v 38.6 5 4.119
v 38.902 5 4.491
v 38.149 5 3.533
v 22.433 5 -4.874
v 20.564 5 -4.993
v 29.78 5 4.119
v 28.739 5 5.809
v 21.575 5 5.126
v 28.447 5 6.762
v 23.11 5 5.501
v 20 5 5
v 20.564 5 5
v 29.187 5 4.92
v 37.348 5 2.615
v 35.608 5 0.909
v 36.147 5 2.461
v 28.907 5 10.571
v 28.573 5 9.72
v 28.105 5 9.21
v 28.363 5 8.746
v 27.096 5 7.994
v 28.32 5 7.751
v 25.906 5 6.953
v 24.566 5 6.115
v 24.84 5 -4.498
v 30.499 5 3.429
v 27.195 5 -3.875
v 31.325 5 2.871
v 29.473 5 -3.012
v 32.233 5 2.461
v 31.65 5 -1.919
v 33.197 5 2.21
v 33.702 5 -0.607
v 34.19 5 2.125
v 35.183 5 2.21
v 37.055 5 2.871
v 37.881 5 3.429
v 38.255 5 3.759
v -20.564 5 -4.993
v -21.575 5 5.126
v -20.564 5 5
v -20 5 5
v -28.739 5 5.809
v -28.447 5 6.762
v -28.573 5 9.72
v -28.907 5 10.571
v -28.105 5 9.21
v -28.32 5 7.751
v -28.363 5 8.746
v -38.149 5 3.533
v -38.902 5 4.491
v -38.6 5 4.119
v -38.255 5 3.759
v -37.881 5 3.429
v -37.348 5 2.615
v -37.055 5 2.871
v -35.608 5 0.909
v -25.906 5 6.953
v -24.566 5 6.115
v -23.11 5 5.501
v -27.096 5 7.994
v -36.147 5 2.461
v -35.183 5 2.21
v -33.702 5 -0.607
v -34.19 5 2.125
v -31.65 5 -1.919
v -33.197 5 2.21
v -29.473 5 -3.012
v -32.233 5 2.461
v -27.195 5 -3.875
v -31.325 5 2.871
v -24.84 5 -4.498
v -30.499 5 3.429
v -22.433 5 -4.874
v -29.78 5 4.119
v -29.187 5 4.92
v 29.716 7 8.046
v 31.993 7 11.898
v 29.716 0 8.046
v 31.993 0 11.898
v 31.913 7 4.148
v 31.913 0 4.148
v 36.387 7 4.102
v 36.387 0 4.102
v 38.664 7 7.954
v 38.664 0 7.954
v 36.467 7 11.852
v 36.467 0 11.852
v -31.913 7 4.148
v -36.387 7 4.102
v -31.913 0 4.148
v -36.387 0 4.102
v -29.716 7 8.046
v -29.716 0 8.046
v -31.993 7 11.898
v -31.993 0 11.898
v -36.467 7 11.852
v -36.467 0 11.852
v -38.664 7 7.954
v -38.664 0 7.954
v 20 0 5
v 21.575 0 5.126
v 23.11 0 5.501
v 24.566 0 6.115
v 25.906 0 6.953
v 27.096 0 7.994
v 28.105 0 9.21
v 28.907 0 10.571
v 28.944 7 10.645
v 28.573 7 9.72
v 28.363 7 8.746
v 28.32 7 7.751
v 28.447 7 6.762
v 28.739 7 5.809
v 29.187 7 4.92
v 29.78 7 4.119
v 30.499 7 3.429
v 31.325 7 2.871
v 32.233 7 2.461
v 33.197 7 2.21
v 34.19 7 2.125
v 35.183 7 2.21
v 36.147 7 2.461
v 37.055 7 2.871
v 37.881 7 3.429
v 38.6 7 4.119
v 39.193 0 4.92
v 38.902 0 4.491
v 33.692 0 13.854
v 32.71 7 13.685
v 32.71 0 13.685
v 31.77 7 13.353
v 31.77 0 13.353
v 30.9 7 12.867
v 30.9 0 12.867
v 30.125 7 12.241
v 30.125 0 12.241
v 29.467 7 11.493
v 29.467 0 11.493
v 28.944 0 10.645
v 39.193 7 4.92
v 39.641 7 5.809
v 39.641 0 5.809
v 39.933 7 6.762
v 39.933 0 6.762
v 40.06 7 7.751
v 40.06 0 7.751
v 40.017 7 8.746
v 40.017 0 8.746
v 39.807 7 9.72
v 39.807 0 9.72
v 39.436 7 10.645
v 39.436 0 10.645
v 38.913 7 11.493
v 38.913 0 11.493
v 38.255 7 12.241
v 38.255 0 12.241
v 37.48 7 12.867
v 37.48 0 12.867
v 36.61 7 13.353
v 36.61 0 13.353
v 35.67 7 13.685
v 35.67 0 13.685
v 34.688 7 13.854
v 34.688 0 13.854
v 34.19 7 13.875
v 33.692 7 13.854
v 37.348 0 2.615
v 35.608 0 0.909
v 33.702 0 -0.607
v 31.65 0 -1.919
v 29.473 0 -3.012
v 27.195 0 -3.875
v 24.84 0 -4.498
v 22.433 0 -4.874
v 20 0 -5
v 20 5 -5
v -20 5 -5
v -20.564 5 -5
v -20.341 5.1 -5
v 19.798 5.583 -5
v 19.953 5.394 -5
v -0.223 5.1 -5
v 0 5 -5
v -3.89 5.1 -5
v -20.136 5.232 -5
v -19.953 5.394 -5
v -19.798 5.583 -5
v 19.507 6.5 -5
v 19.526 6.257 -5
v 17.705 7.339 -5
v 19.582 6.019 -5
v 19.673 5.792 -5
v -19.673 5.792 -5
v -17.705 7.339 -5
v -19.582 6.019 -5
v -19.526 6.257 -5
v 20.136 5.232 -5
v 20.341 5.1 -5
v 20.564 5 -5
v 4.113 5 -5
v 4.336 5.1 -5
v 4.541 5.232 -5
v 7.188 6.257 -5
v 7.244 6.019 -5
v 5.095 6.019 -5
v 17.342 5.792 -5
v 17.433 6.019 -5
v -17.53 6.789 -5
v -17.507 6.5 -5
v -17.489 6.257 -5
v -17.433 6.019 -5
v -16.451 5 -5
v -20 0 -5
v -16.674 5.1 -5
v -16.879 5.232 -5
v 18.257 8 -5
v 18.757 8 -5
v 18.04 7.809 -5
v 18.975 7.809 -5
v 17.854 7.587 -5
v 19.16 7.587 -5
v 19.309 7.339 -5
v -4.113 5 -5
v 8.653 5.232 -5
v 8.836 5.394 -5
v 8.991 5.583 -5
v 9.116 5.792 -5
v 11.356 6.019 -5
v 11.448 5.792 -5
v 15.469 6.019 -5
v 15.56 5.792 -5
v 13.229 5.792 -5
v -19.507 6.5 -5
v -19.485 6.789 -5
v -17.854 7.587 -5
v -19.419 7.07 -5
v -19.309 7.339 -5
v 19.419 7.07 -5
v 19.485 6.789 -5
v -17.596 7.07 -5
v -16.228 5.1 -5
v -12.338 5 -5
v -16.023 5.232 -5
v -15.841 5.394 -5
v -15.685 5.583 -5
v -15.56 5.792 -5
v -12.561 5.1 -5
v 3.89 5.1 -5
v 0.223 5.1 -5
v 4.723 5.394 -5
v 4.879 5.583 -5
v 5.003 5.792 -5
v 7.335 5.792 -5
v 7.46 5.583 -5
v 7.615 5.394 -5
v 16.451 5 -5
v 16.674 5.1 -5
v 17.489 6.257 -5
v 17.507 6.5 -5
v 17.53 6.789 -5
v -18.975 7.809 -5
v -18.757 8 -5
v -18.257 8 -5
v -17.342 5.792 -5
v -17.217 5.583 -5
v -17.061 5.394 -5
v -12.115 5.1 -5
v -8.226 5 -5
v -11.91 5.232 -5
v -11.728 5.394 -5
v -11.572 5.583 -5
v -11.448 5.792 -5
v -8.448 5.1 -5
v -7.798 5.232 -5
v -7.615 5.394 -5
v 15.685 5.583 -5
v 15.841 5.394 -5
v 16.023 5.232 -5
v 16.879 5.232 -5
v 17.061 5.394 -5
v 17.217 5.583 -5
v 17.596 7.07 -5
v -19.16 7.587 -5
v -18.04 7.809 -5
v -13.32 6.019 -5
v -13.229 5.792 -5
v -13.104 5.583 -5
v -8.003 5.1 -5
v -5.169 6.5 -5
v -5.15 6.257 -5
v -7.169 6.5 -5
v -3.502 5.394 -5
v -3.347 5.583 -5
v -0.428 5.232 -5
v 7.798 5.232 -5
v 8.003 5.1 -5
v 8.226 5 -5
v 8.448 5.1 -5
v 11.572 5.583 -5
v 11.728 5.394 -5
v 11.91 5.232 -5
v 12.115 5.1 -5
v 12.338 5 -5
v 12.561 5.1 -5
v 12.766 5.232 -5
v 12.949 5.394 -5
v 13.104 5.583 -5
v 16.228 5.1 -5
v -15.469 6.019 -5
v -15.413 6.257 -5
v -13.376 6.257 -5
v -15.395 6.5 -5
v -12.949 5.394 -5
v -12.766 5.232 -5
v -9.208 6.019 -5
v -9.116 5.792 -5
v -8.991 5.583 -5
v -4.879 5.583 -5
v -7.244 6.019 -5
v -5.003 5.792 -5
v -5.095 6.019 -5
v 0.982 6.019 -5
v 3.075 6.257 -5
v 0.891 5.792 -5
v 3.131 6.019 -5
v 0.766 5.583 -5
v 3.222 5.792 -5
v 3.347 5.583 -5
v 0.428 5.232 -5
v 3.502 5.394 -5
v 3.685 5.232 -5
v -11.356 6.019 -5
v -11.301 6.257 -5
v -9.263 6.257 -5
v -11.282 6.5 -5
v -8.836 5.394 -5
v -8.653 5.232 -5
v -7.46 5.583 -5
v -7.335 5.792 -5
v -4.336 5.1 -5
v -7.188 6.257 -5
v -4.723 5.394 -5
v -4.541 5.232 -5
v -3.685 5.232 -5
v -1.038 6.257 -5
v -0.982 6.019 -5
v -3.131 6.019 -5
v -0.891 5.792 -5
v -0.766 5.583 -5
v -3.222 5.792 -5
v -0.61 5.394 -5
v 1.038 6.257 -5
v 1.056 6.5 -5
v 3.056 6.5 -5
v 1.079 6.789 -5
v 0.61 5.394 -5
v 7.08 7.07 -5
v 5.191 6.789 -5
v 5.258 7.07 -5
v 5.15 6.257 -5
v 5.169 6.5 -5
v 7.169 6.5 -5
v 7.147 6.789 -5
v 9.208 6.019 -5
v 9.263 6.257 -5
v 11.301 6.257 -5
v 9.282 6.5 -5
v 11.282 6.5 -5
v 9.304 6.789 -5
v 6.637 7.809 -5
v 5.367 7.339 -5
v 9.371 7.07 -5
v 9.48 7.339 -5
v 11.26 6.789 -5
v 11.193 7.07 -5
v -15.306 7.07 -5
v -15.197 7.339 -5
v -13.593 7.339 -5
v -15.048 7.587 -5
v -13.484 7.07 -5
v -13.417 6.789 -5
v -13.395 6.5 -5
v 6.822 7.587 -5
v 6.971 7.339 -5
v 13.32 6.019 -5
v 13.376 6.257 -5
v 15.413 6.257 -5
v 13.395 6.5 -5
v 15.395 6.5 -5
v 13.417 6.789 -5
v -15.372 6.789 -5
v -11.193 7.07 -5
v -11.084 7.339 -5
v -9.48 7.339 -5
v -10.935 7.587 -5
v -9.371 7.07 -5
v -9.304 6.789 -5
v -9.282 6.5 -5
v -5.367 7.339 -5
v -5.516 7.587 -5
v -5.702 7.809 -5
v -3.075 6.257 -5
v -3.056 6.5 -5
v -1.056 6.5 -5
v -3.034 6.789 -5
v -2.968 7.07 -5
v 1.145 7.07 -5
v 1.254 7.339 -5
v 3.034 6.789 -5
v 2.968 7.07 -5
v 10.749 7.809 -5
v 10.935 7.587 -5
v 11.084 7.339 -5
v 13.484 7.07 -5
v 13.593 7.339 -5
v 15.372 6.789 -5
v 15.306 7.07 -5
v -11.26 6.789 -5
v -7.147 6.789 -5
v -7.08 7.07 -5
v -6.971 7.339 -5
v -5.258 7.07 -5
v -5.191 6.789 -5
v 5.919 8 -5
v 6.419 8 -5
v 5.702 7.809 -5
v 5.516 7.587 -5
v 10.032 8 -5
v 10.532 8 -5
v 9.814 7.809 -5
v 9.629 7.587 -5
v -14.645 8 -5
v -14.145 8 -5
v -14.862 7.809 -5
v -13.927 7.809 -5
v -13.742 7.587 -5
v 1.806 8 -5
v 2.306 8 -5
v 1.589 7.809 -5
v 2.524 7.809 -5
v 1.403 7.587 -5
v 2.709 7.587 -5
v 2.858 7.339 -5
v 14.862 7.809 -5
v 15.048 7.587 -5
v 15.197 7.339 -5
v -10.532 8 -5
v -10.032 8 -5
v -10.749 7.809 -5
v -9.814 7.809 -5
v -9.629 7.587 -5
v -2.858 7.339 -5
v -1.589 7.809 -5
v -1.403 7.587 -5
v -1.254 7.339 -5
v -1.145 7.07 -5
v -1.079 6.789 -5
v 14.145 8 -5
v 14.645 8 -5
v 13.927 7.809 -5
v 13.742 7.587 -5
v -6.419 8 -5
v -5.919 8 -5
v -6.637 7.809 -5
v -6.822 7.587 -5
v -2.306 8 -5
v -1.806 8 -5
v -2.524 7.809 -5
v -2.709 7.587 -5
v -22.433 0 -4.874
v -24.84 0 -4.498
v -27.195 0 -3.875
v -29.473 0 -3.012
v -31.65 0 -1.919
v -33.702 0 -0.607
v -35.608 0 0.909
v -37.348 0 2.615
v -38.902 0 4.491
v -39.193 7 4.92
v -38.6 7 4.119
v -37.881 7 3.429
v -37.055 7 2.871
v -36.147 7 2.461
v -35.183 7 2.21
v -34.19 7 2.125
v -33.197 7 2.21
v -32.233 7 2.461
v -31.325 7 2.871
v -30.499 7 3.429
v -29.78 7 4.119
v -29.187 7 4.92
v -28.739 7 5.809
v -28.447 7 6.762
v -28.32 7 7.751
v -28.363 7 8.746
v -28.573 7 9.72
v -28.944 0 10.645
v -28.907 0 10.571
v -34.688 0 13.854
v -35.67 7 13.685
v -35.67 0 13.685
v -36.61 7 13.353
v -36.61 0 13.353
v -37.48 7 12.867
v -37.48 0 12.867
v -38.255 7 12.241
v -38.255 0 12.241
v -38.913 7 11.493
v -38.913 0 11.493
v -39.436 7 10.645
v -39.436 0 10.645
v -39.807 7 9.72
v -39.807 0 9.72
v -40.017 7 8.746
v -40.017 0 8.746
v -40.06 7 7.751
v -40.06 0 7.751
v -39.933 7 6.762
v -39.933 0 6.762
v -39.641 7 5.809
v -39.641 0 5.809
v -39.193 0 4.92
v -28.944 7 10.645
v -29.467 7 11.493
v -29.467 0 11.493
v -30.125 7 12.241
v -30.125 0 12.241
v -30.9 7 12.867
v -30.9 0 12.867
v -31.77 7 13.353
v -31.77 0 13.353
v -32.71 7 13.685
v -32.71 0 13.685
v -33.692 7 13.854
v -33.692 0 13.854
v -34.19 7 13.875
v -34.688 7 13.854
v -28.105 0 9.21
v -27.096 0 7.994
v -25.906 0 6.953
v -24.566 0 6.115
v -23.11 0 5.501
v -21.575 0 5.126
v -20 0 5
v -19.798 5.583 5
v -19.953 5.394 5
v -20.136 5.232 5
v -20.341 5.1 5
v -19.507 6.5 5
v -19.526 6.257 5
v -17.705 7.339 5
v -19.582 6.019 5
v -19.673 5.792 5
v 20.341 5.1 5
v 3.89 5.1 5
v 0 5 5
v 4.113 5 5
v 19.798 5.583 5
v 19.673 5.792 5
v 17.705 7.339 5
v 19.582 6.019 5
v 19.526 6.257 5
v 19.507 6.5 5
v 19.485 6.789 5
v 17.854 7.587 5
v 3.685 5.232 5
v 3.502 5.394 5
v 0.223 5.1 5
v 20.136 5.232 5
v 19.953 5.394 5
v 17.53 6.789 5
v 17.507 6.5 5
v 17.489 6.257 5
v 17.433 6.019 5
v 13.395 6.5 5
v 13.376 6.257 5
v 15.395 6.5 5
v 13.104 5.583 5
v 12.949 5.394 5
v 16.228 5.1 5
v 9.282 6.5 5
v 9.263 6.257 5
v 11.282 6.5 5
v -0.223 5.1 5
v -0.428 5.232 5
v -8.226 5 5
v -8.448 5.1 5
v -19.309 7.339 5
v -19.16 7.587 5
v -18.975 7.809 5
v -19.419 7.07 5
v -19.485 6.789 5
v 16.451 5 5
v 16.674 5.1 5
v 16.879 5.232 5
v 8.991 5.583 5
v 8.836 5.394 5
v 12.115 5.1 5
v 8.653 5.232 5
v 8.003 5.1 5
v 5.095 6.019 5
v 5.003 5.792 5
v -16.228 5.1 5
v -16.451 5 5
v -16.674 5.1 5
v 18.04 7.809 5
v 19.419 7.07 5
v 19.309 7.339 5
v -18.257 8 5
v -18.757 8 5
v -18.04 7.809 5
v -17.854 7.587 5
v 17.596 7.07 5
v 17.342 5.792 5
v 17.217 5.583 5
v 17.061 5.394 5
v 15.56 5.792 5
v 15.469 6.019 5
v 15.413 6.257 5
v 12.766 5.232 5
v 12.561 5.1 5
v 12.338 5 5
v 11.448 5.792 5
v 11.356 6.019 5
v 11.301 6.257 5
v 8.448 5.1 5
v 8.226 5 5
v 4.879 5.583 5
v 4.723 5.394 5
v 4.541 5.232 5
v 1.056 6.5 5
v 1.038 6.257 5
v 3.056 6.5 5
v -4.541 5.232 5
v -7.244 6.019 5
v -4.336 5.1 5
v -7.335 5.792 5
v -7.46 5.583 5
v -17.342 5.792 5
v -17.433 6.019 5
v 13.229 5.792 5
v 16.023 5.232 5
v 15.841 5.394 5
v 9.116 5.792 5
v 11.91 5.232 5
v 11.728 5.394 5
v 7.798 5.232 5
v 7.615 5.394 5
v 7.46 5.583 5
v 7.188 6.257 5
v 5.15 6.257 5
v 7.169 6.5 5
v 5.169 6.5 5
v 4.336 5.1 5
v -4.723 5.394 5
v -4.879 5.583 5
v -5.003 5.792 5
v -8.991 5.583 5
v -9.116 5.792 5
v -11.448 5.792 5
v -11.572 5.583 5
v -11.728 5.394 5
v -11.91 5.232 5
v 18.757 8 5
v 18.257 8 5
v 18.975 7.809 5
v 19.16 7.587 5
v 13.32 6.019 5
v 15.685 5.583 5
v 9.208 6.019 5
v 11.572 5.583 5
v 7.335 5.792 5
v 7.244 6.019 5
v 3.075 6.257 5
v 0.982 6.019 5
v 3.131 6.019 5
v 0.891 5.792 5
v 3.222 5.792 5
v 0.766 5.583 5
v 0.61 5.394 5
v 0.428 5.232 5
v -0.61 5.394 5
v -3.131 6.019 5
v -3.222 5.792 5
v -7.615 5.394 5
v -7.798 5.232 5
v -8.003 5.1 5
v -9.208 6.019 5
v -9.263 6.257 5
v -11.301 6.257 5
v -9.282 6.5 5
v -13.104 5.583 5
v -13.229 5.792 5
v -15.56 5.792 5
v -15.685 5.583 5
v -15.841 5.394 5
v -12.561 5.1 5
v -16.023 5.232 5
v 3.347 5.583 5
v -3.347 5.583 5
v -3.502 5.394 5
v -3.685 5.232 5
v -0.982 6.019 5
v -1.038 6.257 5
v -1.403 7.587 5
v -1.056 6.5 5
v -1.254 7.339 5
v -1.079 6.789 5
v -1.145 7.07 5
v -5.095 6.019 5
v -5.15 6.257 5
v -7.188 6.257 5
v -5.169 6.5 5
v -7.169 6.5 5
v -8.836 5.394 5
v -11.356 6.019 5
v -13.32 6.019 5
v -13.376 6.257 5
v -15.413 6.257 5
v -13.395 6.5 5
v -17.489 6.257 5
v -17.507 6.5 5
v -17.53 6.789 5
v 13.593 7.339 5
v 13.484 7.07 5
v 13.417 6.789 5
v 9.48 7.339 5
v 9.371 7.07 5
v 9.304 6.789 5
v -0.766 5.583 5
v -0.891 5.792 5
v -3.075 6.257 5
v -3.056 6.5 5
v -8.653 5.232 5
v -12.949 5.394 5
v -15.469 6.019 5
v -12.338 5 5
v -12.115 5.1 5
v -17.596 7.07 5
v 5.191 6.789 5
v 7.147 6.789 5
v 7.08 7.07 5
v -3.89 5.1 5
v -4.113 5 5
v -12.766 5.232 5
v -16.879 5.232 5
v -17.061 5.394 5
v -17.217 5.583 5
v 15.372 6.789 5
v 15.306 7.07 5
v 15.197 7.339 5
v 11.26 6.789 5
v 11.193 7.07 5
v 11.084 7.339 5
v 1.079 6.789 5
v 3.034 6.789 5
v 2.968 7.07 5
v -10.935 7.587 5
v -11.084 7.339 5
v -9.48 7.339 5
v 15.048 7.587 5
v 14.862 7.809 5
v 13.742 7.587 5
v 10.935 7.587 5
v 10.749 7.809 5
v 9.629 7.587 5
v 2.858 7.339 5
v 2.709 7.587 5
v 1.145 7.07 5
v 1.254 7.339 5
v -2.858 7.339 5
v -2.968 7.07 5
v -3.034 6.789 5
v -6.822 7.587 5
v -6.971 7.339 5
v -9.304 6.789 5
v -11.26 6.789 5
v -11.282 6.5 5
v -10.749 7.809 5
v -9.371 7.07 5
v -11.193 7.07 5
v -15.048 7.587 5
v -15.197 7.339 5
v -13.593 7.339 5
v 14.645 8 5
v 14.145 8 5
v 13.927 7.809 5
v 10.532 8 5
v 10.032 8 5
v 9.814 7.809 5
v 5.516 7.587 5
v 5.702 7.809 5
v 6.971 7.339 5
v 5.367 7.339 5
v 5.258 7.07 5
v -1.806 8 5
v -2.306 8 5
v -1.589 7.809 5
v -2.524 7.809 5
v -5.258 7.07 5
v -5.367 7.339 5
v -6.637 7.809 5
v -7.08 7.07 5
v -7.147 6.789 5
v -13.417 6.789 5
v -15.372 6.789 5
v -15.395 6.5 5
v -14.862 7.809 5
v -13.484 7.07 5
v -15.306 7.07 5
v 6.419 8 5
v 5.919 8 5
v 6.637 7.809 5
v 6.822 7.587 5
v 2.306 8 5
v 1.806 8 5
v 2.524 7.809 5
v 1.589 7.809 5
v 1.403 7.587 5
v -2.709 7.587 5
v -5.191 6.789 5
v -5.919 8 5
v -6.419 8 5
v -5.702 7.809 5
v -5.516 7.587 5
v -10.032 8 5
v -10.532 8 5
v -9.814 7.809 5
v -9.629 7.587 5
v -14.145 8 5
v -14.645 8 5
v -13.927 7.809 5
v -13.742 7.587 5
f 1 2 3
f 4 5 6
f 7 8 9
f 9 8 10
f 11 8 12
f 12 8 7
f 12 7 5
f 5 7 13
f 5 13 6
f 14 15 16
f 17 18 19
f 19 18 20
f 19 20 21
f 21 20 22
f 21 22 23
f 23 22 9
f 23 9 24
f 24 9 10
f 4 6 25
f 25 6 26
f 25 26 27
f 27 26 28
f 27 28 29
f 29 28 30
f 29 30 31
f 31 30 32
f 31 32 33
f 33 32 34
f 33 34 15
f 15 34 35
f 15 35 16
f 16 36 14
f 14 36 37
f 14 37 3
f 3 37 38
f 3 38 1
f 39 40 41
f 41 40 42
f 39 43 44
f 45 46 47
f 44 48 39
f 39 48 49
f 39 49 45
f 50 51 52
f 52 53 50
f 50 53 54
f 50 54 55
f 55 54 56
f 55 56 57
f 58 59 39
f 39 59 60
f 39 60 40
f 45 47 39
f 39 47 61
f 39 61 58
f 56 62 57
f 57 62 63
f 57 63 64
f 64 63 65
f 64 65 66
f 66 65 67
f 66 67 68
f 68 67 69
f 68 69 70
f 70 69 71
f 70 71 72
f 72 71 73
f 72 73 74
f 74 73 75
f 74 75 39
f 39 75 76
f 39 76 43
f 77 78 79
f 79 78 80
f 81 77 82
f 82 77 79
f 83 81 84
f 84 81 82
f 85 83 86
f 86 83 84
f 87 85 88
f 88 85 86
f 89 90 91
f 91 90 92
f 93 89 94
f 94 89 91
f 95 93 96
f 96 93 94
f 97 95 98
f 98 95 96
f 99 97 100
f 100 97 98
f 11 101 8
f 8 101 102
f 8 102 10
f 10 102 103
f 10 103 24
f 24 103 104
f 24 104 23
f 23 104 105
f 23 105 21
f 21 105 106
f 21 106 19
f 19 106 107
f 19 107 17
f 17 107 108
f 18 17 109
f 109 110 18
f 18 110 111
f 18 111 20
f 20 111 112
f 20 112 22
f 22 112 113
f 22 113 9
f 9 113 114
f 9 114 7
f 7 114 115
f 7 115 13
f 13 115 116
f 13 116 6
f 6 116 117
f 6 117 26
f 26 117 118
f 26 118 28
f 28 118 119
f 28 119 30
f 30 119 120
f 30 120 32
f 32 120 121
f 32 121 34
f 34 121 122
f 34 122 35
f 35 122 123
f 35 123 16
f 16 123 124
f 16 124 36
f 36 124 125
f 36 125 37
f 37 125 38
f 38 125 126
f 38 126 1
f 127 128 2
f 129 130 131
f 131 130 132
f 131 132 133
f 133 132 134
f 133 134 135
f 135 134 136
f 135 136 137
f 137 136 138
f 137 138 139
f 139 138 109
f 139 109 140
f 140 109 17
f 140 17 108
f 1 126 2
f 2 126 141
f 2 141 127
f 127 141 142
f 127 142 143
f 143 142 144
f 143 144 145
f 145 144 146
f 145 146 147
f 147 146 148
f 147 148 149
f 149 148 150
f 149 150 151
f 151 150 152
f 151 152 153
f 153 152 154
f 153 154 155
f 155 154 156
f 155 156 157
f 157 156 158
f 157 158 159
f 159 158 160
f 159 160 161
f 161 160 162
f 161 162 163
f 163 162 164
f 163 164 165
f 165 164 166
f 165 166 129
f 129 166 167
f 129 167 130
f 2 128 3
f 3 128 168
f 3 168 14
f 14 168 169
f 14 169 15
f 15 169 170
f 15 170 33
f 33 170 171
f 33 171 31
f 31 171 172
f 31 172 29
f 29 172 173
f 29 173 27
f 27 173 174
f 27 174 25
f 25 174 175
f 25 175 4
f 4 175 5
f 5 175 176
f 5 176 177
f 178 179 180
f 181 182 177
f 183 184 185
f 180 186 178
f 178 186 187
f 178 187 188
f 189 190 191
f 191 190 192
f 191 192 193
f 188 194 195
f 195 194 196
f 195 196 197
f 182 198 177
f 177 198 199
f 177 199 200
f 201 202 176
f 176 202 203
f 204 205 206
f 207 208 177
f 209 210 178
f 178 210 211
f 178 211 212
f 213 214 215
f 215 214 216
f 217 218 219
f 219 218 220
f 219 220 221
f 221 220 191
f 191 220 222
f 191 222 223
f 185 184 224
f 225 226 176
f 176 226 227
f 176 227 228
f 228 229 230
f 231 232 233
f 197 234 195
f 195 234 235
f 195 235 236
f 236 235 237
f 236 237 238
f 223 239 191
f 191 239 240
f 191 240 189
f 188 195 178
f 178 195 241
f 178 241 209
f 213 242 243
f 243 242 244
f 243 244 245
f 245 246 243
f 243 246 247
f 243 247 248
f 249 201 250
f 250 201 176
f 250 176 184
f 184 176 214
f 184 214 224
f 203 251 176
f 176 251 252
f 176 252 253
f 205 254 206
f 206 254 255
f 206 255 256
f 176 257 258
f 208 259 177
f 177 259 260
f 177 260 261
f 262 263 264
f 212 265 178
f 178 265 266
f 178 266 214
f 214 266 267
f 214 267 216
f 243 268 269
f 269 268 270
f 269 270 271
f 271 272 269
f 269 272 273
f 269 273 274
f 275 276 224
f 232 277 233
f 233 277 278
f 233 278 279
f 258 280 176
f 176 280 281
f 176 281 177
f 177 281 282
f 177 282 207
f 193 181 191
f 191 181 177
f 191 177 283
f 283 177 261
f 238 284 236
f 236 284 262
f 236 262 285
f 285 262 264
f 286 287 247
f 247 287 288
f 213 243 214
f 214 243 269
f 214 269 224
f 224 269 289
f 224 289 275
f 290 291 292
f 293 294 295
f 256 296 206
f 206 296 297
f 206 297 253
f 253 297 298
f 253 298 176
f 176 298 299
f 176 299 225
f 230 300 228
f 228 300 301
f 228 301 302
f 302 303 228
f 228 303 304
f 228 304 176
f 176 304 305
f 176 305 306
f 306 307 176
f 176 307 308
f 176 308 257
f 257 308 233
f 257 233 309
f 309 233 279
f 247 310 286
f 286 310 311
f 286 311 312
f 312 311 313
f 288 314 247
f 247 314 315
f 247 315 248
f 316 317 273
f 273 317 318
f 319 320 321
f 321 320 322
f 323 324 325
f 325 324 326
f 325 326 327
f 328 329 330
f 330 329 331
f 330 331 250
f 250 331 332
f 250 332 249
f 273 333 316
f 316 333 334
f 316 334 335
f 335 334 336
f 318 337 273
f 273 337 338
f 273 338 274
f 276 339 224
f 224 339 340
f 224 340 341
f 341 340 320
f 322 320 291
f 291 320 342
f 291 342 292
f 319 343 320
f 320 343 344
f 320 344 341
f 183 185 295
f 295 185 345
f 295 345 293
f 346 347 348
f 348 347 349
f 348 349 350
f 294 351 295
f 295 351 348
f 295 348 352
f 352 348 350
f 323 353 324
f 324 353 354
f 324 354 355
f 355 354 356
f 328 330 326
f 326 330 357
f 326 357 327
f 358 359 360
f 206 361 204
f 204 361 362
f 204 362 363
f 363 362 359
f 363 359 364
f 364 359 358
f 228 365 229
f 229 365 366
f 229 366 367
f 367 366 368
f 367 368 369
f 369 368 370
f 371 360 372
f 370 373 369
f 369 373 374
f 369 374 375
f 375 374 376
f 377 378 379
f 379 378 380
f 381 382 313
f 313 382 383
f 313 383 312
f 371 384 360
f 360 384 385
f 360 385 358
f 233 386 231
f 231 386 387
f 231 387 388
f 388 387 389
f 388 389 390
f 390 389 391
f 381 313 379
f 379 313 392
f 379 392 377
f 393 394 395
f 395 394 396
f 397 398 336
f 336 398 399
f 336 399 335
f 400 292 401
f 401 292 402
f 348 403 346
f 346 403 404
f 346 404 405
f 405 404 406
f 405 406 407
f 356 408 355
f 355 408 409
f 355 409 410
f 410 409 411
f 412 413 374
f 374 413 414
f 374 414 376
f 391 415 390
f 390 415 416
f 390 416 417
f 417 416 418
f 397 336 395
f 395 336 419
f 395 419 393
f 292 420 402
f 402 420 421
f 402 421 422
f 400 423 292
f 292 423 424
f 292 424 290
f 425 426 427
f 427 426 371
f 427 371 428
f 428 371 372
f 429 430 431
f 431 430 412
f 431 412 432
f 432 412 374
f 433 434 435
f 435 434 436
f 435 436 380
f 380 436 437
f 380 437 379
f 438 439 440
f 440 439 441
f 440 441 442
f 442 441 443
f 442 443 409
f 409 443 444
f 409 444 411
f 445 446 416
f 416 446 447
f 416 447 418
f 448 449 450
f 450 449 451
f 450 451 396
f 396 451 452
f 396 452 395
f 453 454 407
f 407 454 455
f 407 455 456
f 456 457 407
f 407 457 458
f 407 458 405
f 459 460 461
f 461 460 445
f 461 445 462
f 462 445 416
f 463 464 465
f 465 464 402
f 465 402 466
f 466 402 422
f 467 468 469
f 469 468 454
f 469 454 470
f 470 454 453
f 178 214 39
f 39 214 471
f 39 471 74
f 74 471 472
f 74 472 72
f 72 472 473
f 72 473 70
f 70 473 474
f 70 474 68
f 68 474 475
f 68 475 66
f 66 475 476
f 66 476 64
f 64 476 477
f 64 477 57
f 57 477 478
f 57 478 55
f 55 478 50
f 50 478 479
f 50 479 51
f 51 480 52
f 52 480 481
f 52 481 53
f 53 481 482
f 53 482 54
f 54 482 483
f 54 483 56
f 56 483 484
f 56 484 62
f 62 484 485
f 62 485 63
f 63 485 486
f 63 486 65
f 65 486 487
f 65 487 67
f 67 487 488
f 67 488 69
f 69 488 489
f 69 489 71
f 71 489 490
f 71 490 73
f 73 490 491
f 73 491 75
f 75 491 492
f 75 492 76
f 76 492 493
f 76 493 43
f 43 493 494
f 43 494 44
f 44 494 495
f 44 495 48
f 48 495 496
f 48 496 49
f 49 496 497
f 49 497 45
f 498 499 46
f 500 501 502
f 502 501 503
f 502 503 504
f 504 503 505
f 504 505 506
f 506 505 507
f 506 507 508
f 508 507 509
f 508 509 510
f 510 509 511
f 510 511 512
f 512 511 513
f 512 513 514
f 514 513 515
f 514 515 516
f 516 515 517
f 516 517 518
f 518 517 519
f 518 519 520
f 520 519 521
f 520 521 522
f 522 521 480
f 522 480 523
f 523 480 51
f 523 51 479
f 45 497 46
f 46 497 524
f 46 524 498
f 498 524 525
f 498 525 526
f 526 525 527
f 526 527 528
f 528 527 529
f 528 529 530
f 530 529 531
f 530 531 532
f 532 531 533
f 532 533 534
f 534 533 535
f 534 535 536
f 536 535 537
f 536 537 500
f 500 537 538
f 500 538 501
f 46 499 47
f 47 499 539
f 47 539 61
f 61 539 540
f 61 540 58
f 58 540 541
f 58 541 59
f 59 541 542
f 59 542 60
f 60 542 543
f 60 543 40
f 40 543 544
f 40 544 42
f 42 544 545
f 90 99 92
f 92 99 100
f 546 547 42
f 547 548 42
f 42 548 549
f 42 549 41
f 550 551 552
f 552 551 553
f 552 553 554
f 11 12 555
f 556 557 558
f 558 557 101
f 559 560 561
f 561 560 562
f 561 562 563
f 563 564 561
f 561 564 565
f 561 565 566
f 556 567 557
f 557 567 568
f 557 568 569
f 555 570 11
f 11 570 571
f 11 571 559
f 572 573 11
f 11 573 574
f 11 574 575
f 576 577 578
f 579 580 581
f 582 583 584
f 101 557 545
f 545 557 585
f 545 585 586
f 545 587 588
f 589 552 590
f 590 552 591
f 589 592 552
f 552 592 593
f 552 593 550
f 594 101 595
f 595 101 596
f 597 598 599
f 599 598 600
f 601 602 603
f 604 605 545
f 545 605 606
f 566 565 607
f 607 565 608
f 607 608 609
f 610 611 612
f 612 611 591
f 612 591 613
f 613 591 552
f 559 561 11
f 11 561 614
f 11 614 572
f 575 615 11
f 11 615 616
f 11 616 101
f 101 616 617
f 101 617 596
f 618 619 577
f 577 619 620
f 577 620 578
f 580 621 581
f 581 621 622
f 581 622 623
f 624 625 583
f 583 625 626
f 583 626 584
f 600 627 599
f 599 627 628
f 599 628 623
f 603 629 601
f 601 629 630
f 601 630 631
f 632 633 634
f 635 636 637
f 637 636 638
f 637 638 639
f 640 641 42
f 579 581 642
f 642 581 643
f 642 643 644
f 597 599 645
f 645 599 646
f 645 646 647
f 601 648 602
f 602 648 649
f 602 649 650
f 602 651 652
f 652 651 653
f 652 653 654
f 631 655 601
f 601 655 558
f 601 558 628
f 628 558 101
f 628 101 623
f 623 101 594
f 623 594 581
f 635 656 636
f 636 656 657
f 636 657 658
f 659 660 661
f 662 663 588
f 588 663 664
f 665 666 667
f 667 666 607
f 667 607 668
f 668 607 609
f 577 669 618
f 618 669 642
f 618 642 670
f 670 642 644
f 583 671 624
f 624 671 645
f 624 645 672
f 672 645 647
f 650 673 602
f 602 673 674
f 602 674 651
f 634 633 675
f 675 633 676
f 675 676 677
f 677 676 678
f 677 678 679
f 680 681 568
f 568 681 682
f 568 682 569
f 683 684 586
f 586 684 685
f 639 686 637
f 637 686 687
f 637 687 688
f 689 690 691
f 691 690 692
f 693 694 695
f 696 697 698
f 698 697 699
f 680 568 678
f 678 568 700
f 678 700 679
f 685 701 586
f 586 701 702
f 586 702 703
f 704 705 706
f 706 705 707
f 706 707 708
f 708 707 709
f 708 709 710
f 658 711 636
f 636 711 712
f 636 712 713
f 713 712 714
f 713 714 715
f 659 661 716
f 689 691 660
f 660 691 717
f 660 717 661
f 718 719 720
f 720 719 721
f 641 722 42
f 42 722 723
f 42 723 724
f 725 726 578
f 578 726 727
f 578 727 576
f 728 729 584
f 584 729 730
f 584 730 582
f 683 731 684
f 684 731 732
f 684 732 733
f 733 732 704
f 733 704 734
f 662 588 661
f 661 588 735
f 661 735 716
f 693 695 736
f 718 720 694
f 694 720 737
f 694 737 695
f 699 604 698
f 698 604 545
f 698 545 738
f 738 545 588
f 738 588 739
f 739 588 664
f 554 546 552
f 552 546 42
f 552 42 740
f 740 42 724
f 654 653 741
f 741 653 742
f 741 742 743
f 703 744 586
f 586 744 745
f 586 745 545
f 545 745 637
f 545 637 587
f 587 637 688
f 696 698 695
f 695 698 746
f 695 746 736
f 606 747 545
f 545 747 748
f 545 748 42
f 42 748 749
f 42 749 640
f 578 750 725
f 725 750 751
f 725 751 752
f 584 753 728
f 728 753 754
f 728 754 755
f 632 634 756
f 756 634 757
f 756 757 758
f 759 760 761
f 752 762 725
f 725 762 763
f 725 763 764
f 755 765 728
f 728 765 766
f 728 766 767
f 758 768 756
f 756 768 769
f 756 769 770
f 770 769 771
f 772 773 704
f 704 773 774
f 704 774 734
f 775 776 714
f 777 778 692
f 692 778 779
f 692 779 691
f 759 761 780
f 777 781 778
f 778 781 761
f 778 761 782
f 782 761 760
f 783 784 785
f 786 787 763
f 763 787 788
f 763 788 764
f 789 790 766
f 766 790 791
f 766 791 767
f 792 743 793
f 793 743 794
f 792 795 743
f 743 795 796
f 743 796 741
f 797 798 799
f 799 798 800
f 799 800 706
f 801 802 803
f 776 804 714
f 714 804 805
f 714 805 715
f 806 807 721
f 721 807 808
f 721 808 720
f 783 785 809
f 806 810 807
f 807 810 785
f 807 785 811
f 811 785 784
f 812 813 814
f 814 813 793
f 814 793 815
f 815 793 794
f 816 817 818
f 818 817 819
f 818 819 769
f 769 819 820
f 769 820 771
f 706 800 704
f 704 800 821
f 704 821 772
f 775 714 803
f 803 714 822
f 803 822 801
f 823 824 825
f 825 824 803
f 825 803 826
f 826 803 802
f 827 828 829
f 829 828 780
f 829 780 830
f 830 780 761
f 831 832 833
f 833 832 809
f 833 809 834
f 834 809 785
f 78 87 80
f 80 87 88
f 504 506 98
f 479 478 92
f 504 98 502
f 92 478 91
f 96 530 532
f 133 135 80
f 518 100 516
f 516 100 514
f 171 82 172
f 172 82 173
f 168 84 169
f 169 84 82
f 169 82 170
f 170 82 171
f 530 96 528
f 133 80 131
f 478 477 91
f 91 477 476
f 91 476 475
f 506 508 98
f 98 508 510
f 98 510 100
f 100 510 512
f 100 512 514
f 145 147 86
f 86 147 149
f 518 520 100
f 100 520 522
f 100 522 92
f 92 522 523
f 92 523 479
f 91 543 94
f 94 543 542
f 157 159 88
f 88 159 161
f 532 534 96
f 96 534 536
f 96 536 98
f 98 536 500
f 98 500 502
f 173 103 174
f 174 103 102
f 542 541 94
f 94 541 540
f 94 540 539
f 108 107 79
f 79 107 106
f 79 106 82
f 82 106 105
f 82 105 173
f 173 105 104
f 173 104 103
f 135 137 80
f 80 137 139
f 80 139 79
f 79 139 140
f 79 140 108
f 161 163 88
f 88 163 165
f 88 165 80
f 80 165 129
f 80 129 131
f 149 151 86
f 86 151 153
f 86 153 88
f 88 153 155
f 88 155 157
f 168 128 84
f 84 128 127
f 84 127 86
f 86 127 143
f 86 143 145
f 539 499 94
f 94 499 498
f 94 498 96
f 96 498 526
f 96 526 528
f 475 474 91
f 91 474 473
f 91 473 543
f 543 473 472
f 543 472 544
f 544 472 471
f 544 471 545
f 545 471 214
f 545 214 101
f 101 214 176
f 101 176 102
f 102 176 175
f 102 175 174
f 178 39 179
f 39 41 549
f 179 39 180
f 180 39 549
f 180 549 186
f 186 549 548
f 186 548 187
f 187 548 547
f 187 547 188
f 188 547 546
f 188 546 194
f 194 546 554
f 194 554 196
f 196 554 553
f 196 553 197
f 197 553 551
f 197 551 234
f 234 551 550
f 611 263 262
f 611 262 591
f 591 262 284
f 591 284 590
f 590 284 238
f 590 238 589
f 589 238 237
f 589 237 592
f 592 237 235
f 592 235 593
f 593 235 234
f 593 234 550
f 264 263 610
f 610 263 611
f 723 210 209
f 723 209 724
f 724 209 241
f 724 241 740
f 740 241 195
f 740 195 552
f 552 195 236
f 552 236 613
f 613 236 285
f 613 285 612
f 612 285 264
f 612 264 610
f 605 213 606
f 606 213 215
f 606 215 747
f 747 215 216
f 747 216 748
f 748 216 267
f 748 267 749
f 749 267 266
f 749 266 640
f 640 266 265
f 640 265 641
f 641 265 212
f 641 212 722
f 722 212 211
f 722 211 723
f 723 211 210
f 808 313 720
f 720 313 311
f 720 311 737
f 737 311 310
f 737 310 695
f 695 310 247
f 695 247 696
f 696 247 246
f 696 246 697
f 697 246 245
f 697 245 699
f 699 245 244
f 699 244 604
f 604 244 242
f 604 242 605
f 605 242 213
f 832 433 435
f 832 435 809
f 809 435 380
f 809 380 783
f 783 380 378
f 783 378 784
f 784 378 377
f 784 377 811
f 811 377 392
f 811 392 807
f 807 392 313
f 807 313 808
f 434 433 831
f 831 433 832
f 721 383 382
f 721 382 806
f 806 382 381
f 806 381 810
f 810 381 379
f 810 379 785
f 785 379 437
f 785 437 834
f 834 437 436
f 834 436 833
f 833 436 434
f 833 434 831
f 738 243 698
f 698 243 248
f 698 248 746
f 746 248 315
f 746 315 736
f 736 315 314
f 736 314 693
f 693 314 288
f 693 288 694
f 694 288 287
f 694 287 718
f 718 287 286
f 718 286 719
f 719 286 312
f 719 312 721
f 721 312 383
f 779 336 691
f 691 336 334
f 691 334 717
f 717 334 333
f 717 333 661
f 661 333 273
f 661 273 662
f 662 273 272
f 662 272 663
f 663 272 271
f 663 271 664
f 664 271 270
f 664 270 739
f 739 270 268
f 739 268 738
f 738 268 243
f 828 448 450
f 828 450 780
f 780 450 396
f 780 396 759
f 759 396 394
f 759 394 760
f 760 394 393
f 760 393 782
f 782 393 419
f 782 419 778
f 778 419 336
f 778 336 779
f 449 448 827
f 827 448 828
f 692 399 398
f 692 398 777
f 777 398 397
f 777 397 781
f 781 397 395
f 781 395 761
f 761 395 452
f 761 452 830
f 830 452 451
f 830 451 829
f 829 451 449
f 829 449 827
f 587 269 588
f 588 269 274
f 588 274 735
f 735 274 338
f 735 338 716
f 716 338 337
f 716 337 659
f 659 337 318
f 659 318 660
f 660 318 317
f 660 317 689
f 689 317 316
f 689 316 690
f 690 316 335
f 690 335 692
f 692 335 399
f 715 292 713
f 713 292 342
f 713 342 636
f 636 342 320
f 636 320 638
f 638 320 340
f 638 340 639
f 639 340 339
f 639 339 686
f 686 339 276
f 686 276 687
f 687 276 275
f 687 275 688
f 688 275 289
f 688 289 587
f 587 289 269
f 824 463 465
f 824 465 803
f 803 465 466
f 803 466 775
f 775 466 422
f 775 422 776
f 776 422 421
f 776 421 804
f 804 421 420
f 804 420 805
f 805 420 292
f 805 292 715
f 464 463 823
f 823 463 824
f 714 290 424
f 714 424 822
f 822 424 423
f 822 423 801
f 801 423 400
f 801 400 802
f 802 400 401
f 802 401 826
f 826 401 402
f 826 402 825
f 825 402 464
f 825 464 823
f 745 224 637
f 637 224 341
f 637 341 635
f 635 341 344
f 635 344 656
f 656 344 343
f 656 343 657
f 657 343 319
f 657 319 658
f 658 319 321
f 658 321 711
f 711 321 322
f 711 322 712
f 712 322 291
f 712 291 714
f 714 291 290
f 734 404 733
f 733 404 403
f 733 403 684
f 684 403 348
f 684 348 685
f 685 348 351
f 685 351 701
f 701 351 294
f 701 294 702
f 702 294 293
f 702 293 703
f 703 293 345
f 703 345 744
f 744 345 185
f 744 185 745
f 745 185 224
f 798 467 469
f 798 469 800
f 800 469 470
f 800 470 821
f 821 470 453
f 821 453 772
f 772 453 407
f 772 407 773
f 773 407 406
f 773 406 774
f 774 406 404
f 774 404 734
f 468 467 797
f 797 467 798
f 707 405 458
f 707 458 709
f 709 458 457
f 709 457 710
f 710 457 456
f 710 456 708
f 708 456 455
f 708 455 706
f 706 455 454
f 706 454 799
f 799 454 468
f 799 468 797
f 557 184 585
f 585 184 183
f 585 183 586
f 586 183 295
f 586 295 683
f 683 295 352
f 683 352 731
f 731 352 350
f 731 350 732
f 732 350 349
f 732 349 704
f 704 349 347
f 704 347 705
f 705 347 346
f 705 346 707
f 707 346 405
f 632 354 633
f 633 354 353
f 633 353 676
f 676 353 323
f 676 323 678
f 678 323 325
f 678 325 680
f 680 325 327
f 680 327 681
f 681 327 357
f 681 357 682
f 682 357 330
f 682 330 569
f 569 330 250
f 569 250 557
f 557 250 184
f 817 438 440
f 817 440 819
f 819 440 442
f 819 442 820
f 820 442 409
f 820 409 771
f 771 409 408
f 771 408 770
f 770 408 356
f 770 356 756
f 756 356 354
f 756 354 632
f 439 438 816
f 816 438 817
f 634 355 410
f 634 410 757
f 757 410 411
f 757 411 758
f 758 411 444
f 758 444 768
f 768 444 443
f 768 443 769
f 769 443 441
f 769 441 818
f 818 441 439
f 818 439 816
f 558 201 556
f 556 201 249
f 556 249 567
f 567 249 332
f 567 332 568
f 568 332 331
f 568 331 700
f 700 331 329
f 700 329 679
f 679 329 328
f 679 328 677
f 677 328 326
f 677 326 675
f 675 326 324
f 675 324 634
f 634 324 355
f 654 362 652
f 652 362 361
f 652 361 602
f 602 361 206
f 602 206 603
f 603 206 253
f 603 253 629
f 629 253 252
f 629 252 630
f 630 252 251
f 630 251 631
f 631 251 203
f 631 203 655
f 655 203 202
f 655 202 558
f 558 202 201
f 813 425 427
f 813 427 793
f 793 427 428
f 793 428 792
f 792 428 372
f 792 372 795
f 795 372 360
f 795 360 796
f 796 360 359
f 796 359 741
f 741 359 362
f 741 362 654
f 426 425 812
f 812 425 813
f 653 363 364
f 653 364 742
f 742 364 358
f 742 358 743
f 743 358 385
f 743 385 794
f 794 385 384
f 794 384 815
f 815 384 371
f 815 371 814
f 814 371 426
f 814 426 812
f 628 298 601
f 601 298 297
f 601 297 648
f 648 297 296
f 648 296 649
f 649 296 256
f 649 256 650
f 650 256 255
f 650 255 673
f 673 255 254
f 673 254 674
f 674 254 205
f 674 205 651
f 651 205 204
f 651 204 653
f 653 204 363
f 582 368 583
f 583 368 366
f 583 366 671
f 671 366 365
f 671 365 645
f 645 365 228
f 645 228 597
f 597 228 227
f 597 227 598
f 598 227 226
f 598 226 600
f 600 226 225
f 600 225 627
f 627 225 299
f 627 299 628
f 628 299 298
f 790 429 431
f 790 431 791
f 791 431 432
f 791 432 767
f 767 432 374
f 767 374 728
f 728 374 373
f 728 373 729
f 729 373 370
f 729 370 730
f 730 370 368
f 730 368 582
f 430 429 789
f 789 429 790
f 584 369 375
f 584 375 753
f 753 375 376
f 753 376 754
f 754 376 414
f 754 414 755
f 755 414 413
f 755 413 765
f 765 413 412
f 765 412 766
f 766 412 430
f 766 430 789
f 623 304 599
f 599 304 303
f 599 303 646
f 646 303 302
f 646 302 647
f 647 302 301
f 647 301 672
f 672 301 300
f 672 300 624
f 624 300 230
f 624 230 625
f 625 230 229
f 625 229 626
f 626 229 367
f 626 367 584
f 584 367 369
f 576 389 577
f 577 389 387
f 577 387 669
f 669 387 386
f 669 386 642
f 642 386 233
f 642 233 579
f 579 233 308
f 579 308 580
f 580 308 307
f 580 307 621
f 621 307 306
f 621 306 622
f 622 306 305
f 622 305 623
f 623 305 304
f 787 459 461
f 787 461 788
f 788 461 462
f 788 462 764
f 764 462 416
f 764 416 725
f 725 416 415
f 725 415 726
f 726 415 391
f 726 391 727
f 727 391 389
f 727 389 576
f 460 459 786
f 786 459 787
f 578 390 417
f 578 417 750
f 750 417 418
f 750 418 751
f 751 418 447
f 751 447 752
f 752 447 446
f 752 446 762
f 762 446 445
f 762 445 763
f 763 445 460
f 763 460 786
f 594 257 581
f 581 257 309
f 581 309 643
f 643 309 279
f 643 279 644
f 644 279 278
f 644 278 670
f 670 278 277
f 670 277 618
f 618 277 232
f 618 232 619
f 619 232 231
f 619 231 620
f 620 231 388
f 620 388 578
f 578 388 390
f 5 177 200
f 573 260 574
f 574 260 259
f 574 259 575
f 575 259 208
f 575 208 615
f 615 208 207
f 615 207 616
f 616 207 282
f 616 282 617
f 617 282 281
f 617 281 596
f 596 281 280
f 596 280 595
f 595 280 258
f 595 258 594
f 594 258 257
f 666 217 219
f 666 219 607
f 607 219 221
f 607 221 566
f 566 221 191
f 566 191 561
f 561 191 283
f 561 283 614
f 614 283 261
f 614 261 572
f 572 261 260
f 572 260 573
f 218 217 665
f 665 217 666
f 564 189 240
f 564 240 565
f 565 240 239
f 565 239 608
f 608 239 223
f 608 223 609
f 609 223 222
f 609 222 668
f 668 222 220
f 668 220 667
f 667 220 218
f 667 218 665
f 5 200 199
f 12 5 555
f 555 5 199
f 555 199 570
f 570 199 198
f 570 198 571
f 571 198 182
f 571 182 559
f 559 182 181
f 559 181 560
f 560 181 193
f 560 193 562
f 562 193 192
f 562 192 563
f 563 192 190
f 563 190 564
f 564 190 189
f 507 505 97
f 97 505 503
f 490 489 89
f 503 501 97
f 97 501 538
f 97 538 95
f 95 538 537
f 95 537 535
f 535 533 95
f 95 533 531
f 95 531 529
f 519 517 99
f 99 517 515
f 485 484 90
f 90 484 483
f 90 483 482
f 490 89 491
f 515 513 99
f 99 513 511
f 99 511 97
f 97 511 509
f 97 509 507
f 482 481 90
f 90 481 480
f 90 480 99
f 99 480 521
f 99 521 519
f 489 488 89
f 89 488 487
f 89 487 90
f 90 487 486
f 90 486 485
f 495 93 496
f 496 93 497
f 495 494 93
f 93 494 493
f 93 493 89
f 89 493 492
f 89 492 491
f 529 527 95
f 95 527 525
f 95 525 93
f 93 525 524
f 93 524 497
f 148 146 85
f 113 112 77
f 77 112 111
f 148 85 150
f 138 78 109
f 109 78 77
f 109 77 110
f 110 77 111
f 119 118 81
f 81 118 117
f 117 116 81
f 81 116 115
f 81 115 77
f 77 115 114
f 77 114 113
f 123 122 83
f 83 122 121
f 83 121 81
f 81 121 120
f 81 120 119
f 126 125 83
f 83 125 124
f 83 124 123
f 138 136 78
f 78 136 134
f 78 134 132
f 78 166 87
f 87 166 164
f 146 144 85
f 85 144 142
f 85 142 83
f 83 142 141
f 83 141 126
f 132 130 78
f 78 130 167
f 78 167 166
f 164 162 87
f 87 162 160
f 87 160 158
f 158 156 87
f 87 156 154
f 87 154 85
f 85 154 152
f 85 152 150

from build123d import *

# Parameters (mm, degrees)
BOSS_EXTRUDE1_DEPTH             = 5
BOSS_EXTRUDE2_REACH             = 44.693
SKETCH2_W                       = 1
SKETCH2_H                       = 1.5
BOSS_EXTRUDE2_DIRECTION_2_REACH = 44.693
LPATTERN1_COUNT                 = 10
LPATTERN1_PITCH                 = 4.112759299
BOSS_EXTRUDE3_START             = 5
BOSS_EXTRUDE3_OUTLINE_R         = 5.875
BOSS_EXTRUDE3_DEPTH             = 2


# Read off the part's stored shape, not the designer's step: Boss-Extrude3
with BuildPart() as part:
    # Sketch1 → Boss-Extrude1 (new body)
    with BuildSketch(Plane(origin=(0, 0, 0), x_dir=(1, 0, 0), z_dir=(0, 1, 0))):
        with BuildLine():
            ThreePointArc((-38.901886937, -4.490905174), (-37.243453661, -13.019167833), (-28.907471708, -10.571093123))
            ThreePointArc((-28.907471708, -10.571093123), (-25.253097439, -6.507468715), (-20, -5))
            Line((-20, -5), (20, -5))
            ThreePointArc((20, -5), (25.253097439, -6.507468715), (28.907471708, -10.571093123))
            ThreePointArc((28.907471708, -10.571093123), (37.243453661, -13.019167833), (38.901886937, -4.490905174))
            ThreePointArc((38.901886937, -4.490905174), (30.575426833, 2.494044808), (20, 5))
            Line((20, 5), (-20, 5))
            ThreePointArc((-20, 5), (-30.575426833, 2.494044808), (-38.901886937, -4.490905174))
        make_face()
        Polygon((-31.913207445, -4.148110984), (-30.814488671, -6.096963409), (-29.715769982, -8.045815684), (-31.992562537, -11.8977047), (-36.466792555, -11.851889016), (-38.664230018, -7.954184316), (-36.387437463, -4.1022953), align=None, mode=Mode.SUBTRACT)
        Polygon((30.814488669, -6.096963413), (31.913207445, -4.148110984), (36.387437463, -4.1022953), (38.664230018, -7.954184316), (36.466792555, -11.851889016), (31.992562537, -11.8977047), (29.715769982, -8.045815684), align=None, mode=Mode.SUBTRACT)
    extrude(amount=BOSS_EXTRUDE1_DEPTH)

    # Boss-Extrude2: up to this face of the body (flat: up to its plane)
    boss_extrude2_end = Plane(part.part.faces().sort_by_distance((0, 2.5, 5))[0])
    # Sketch2 → Boss-Extrude2 (add, up to the picked face)
    with BuildSketch(Plane.XY, mode=Mode.PRIVATE) as boss_extrude2_sk1:
        with BuildLine():
            ThreePointArc((-19.507416847, 6.5), (-19.798015047, 5.582675362), (-20.563796496, 5))
            Line((-20.563796496, 5), (-18.507416847, 5))
            Line((-18.507416847, 5), (-18.507416847, 6.5))
            Line((-18.507416847, 6.5), (-19.507416847, 6.5))
        make_face()
    boss_extrude2_tool1 = split(extrude(boss_extrude2_sk1.sketch, amount=BOSS_EXTRUDE2_REACH, mode=Mode.PRIVATE), bisect_by=boss_extrude2_end, keep=Keep.BOTH, mode=Mode.PRIVATE)
    # Sketch2 → Boss-Extrude2 (add, up to the picked face)
    with BuildSketch(Plane.XY, mode=Mode.PRIVATE) as boss_extrude2_sk2:
        with Locations((-18.007416847, 5.75)):
            Rectangle(SKETCH2_W, SKETCH2_H)
    boss_extrude2_tool2 = split(extrude(boss_extrude2_sk2.sketch, amount=BOSS_EXTRUDE2_REACH, mode=Mode.PRIVATE), bisect_by=boss_extrude2_end, keep=Keep.BOTH, mode=Mode.PRIVATE)
    # Sketch2 → Boss-Extrude2 (add, up to the picked face)
    with BuildSketch(Plane.XY, mode=Mode.PRIVATE) as boss_extrude2_sk3:
        with BuildLine():
            Line((-17.507416847, 6.5), (-17.507416847, 5))
            Line((-17.507416847, 5), (-16.451037197, 5))
            ThreePointArc((-16.451037197, 5), (-17.216818646, 5.582675362), (-17.507416847, 6.5))
        make_face()
    boss_extrude2_tool3 = split(extrude(boss_extrude2_sk3.sketch, amount=BOSS_EXTRUDE2_REACH, mode=Mode.PRIVATE), bisect_by=boss_extrude2_end, keep=Keep.BOTH, mode=Mode.PRIVATE)
    # Sketch2 → Boss-Extrude2 (add, up to the picked face)
    with BuildSketch(Plane.XY, mode=Mode.PRIVATE) as boss_extrude2_sk4:
        with BuildLine():
            Line((-18.507416847, 8), (-18.507416847, 6.5))
            Line((-18.507416847, 6.5), (-17.507416847, 6.5))
            ThreePointArc((-17.507416847, 6.5), (-17.705365863, 7.338525492), (-18.257416847, 8))
            Line((-18.257416847, 8), (-18.507416847, 8))
        make_face()
    boss_extrude2_tool4 = split(extrude(boss_extrude2_sk4.sketch, amount=BOSS_EXTRUDE2_REACH, mode=Mode.PRIVATE), bisect_by=boss_extrude2_end, keep=Keep.BOTH, mode=Mode.PRIVATE)
    # Sketch2 → Boss-Extrude2 (add, up to the picked face)
    with BuildSketch(Plane.XY, mode=Mode.PRIVATE) as boss_extrude2_sk5:
        with BuildLine():
            ThreePointArc((-18.757416847, 8), (-19.30946783, 7.338525492), (-19.507416847, 6.5))
            Line((-19.507416847, 6.5), (-18.507416847, 6.5))
            Line((-18.507416847, 6.5), (-18.507416847, 8))
            Line((-18.507416847, 8), (-18.757416847, 8))
        make_face()
    boss_extrude2_tool5 = split(extrude(boss_extrude2_sk5.sketch, amount=BOSS_EXTRUDE2_REACH, mode=Mode.PRIVATE), bisect_by=boss_extrude2_end, keep=Keep.BOTH, mode=Mode.PRIVATE)
    boss_extrude2_1 = boss_extrude2_tool1.solids().sort_by(Axis((-19.182136, 5.660038, 0), (0, 0, 1)))[0]
    add(boss_extrude2_1)
    boss_extrude2_2 = boss_extrude2_tool2.solids().sort_by(Axis((-18.007417, 5.75, 0), (0, 0, 1)))[0]
    add(boss_extrude2_2)
    boss_extrude2_3 = boss_extrude2_tool3.solids().sort_by(Axis((-17.222958, 5.346083, 0), (0, 0, 1)))[0]
    add(boss_extrude2_3)
    boss_extrude2_4 = boss_extrude2_tool4.solids().sort_by(Axis((-18.090718, 7.135758, 0), (0, 0, 1)))[0]
    add(boss_extrude2_4)
    boss_extrude2_5 = boss_extrude2_tool5.solids().sort_by(Axis((-18.924116, 7.135758, 0), (0, 0, 1)))[0]
    add(boss_extrude2_5)
    boss_extrude2 = boss_extrude2_1 + boss_extrude2_2 + boss_extrude2_3 + boss_extrude2_4 + boss_extrude2_5  # Boss-Extrude2 as one shape, for the pattern or mirror that repeats it

    # Boss-Extrude2 direction 2: up to this face of the body (flat: up to its plane)
    boss_extrude2_direction_2_end = Plane(part.part.faces().sort_by_distance((0, 2.5, -5))[0])
    # Sketch2 → Boss-Extrude2 direction 2 (add, up to the picked face)
    with BuildSketch(Plane.XY, mode=Mode.PRIVATE) as boss_extrude2_direction_2_sk1:
        with BuildLine():
            ThreePointArc((-19.507416847, 6.5), (-19.798015047, 5.582675362), (-20.563796496, 5))
            Line((-20.563796496, 5), (-18.507416847, 5))
            Line((-18.507416847, 5), (-18.507416847, 6.5))
            Line((-18.507416847, 6.5), (-19.507416847, 6.5))
        make_face()
    boss_extrude2_direction_2_tool1 = split(extrude(boss_extrude2_direction_2_sk1.sketch, amount=-BOSS_EXTRUDE2_DIRECTION_2_REACH, mode=Mode.PRIVATE), bisect_by=boss_extrude2_direction_2_end, keep=Keep.BOTH, mode=Mode.PRIVATE)
    # Sketch2 → Boss-Extrude2 direction 2 (add, up to the picked face)
    with BuildSketch(Plane.XY, mode=Mode.PRIVATE) as boss_extrude2_direction_2_sk2:
        with Locations((-18.007416847, 5.75)):
            Rectangle(SKETCH2_W, SKETCH2_H)
    boss_extrude2_direction_2_tool2 = split(extrude(boss_extrude2_direction_2_sk2.sketch, amount=-BOSS_EXTRUDE2_DIRECTION_2_REACH, mode=Mode.PRIVATE), bisect_by=boss_extrude2_direction_2_end, keep=Keep.BOTH, mode=Mode.PRIVATE)
    # Sketch2 → Boss-Extrude2 direction 2 (add, up to the picked face)
    with BuildSketch(Plane.XY, mode=Mode.PRIVATE) as boss_extrude2_direction_2_sk3:
        with BuildLine():
            Line((-17.507416847, 6.5), (-17.507416847, 5))
            Line((-17.507416847, 5), (-16.451037197, 5))
            ThreePointArc((-16.451037197, 5), (-17.216818646, 5.582675362), (-17.507416847, 6.5))
        make_face()
    boss_extrude2_direction_2_tool3 = split(extrude(boss_extrude2_direction_2_sk3.sketch, amount=-BOSS_EXTRUDE2_DIRECTION_2_REACH, mode=Mode.PRIVATE), bisect_by=boss_extrude2_direction_2_end, keep=Keep.BOTH, mode=Mode.PRIVATE)
    # Sketch2 → Boss-Extrude2 direction 2 (add, up to the picked face)
    with BuildSketch(Plane.XY, mode=Mode.PRIVATE) as boss_extrude2_direction_2_sk4:
        with BuildLine():
            Line((-18.507416847, 8), (-18.507416847, 6.5))
            Line((-18.507416847, 6.5), (-17.507416847, 6.5))
            ThreePointArc((-17.507416847, 6.5), (-17.705365863, 7.338525492), (-18.257416847, 8))
            Line((-18.257416847, 8), (-18.507416847, 8))
        make_face()
    boss_extrude2_direction_2_tool4 = split(extrude(boss_extrude2_direction_2_sk4.sketch, amount=-BOSS_EXTRUDE2_DIRECTION_2_REACH, mode=Mode.PRIVATE), bisect_by=boss_extrude2_direction_2_end, keep=Keep.BOTH, mode=Mode.PRIVATE)
    # Sketch2 → Boss-Extrude2 direction 2 (add, up to the picked face)
    with BuildSketch(Plane.XY, mode=Mode.PRIVATE) as boss_extrude2_direction_2_sk5:
        with BuildLine():
            ThreePointArc((-18.757416847, 8), (-19.30946783, 7.338525492), (-19.507416847, 6.5))
            Line((-19.507416847, 6.5), (-18.507416847, 6.5))
            Line((-18.507416847, 6.5), (-18.507416847, 8))
            Line((-18.507416847, 8), (-18.757416847, 8))
        make_face()
    boss_extrude2_direction_2_tool5 = split(extrude(boss_extrude2_direction_2_sk5.sketch, amount=-BOSS_EXTRUDE2_DIRECTION_2_REACH, mode=Mode.PRIVATE), bisect_by=boss_extrude2_direction_2_end, keep=Keep.BOTH, mode=Mode.PRIVATE)
    boss_extrude2_direction_2_1 = boss_extrude2_direction_2_tool1.solids().sort_by(Axis((-19.182136, 5.660038, 0), (0, 0, -1)))[0]
    add(boss_extrude2_direction_2_1)
    boss_extrude2_direction_2_2 = boss_extrude2_direction_2_tool2.solids().sort_by(Axis((-18.007417, 5.75, 0), (0, 0, -1)))[0]
    add(boss_extrude2_direction_2_2)
    boss_extrude2_direction_2_3 = boss_extrude2_direction_2_tool3.solids().sort_by(Axis((-17.222958, 5.346083, 0), (0, 0, -1)))[0]
    add(boss_extrude2_direction_2_3)
    boss_extrude2_direction_2_4 = boss_extrude2_direction_2_tool4.solids().sort_by(Axis((-18.090718, 7.135758, 0), (0, 0, -1)))[0]
    add(boss_extrude2_direction_2_4)
    boss_extrude2_direction_2_5 = boss_extrude2_direction_2_tool5.solids().sort_by(Axis((-18.924116, 7.135758, 0), (0, 0, -1)))[0]
    add(boss_extrude2_direction_2_5)
    boss_extrude2_direction_2 = boss_extrude2_direction_2_1 + boss_extrude2_direction_2_2 + boss_extrude2_direction_2_3 + boss_extrude2_direction_2_4 + boss_extrude2_direction_2_5  # Boss-Extrude2 direction 2 as one shape, for the pattern or mirror that repeats it

    # LPattern1: Boss-Extrude2, Boss-Extrude2 direction 2 ×10
    with Locations(*[(i * LPATTERN1_PITCH, 0, 0) for i in range(1, LPATTERN1_COUNT)]):
        add(boss_extrude2)
        add(boss_extrude2_direction_2)

    # Boss-Extrude3 outline → Boss-Extrude3 (add)
    # profile 1 of 2: a face of its own
    with BuildSketch(Plane(origin=(0, 0, 0), x_dir=(1, 0, 0), z_dir=(0, 1, 0)).offset(BOSS_EXTRUDE3_START)):
        with Locations((34.19, -8)):
            Circle(BOSS_EXTRUDE3_OUTLINE_R)
        Polygon((36.466792555, -11.851889016), (31.992562537, -11.8977047), (29.715769982, -8.045815684), (31.913207445, -4.148110984), (36.387437463, -4.1022953), (38.664230018, -7.954184316), align=None, mode=Mode.SUBTRACT)
    # profile 2 of 2: a face of its own
    with BuildSketch(Plane(origin=(0, 0, 0), x_dir=(1, 0, 0), z_dir=(0, 1, 0)).offset(BOSS_EXTRUDE3_START)):
        with Locations((-34.19, -8)):
            Circle(BOSS_EXTRUDE3_OUTLINE_R)
        Polygon((-38.664230018, -7.954184316), (-36.387437463, -4.1022953), (-31.913207445, -4.148110984), (-29.715769982, -8.045815684), (-31.992562537, -11.8977047), (-36.466792555, -11.851889016), align=None, mode=Mode.SUBTRACT)
    extrude(amount=BOSS_EXTRUDE3_DEPTH)


solid = part.part
